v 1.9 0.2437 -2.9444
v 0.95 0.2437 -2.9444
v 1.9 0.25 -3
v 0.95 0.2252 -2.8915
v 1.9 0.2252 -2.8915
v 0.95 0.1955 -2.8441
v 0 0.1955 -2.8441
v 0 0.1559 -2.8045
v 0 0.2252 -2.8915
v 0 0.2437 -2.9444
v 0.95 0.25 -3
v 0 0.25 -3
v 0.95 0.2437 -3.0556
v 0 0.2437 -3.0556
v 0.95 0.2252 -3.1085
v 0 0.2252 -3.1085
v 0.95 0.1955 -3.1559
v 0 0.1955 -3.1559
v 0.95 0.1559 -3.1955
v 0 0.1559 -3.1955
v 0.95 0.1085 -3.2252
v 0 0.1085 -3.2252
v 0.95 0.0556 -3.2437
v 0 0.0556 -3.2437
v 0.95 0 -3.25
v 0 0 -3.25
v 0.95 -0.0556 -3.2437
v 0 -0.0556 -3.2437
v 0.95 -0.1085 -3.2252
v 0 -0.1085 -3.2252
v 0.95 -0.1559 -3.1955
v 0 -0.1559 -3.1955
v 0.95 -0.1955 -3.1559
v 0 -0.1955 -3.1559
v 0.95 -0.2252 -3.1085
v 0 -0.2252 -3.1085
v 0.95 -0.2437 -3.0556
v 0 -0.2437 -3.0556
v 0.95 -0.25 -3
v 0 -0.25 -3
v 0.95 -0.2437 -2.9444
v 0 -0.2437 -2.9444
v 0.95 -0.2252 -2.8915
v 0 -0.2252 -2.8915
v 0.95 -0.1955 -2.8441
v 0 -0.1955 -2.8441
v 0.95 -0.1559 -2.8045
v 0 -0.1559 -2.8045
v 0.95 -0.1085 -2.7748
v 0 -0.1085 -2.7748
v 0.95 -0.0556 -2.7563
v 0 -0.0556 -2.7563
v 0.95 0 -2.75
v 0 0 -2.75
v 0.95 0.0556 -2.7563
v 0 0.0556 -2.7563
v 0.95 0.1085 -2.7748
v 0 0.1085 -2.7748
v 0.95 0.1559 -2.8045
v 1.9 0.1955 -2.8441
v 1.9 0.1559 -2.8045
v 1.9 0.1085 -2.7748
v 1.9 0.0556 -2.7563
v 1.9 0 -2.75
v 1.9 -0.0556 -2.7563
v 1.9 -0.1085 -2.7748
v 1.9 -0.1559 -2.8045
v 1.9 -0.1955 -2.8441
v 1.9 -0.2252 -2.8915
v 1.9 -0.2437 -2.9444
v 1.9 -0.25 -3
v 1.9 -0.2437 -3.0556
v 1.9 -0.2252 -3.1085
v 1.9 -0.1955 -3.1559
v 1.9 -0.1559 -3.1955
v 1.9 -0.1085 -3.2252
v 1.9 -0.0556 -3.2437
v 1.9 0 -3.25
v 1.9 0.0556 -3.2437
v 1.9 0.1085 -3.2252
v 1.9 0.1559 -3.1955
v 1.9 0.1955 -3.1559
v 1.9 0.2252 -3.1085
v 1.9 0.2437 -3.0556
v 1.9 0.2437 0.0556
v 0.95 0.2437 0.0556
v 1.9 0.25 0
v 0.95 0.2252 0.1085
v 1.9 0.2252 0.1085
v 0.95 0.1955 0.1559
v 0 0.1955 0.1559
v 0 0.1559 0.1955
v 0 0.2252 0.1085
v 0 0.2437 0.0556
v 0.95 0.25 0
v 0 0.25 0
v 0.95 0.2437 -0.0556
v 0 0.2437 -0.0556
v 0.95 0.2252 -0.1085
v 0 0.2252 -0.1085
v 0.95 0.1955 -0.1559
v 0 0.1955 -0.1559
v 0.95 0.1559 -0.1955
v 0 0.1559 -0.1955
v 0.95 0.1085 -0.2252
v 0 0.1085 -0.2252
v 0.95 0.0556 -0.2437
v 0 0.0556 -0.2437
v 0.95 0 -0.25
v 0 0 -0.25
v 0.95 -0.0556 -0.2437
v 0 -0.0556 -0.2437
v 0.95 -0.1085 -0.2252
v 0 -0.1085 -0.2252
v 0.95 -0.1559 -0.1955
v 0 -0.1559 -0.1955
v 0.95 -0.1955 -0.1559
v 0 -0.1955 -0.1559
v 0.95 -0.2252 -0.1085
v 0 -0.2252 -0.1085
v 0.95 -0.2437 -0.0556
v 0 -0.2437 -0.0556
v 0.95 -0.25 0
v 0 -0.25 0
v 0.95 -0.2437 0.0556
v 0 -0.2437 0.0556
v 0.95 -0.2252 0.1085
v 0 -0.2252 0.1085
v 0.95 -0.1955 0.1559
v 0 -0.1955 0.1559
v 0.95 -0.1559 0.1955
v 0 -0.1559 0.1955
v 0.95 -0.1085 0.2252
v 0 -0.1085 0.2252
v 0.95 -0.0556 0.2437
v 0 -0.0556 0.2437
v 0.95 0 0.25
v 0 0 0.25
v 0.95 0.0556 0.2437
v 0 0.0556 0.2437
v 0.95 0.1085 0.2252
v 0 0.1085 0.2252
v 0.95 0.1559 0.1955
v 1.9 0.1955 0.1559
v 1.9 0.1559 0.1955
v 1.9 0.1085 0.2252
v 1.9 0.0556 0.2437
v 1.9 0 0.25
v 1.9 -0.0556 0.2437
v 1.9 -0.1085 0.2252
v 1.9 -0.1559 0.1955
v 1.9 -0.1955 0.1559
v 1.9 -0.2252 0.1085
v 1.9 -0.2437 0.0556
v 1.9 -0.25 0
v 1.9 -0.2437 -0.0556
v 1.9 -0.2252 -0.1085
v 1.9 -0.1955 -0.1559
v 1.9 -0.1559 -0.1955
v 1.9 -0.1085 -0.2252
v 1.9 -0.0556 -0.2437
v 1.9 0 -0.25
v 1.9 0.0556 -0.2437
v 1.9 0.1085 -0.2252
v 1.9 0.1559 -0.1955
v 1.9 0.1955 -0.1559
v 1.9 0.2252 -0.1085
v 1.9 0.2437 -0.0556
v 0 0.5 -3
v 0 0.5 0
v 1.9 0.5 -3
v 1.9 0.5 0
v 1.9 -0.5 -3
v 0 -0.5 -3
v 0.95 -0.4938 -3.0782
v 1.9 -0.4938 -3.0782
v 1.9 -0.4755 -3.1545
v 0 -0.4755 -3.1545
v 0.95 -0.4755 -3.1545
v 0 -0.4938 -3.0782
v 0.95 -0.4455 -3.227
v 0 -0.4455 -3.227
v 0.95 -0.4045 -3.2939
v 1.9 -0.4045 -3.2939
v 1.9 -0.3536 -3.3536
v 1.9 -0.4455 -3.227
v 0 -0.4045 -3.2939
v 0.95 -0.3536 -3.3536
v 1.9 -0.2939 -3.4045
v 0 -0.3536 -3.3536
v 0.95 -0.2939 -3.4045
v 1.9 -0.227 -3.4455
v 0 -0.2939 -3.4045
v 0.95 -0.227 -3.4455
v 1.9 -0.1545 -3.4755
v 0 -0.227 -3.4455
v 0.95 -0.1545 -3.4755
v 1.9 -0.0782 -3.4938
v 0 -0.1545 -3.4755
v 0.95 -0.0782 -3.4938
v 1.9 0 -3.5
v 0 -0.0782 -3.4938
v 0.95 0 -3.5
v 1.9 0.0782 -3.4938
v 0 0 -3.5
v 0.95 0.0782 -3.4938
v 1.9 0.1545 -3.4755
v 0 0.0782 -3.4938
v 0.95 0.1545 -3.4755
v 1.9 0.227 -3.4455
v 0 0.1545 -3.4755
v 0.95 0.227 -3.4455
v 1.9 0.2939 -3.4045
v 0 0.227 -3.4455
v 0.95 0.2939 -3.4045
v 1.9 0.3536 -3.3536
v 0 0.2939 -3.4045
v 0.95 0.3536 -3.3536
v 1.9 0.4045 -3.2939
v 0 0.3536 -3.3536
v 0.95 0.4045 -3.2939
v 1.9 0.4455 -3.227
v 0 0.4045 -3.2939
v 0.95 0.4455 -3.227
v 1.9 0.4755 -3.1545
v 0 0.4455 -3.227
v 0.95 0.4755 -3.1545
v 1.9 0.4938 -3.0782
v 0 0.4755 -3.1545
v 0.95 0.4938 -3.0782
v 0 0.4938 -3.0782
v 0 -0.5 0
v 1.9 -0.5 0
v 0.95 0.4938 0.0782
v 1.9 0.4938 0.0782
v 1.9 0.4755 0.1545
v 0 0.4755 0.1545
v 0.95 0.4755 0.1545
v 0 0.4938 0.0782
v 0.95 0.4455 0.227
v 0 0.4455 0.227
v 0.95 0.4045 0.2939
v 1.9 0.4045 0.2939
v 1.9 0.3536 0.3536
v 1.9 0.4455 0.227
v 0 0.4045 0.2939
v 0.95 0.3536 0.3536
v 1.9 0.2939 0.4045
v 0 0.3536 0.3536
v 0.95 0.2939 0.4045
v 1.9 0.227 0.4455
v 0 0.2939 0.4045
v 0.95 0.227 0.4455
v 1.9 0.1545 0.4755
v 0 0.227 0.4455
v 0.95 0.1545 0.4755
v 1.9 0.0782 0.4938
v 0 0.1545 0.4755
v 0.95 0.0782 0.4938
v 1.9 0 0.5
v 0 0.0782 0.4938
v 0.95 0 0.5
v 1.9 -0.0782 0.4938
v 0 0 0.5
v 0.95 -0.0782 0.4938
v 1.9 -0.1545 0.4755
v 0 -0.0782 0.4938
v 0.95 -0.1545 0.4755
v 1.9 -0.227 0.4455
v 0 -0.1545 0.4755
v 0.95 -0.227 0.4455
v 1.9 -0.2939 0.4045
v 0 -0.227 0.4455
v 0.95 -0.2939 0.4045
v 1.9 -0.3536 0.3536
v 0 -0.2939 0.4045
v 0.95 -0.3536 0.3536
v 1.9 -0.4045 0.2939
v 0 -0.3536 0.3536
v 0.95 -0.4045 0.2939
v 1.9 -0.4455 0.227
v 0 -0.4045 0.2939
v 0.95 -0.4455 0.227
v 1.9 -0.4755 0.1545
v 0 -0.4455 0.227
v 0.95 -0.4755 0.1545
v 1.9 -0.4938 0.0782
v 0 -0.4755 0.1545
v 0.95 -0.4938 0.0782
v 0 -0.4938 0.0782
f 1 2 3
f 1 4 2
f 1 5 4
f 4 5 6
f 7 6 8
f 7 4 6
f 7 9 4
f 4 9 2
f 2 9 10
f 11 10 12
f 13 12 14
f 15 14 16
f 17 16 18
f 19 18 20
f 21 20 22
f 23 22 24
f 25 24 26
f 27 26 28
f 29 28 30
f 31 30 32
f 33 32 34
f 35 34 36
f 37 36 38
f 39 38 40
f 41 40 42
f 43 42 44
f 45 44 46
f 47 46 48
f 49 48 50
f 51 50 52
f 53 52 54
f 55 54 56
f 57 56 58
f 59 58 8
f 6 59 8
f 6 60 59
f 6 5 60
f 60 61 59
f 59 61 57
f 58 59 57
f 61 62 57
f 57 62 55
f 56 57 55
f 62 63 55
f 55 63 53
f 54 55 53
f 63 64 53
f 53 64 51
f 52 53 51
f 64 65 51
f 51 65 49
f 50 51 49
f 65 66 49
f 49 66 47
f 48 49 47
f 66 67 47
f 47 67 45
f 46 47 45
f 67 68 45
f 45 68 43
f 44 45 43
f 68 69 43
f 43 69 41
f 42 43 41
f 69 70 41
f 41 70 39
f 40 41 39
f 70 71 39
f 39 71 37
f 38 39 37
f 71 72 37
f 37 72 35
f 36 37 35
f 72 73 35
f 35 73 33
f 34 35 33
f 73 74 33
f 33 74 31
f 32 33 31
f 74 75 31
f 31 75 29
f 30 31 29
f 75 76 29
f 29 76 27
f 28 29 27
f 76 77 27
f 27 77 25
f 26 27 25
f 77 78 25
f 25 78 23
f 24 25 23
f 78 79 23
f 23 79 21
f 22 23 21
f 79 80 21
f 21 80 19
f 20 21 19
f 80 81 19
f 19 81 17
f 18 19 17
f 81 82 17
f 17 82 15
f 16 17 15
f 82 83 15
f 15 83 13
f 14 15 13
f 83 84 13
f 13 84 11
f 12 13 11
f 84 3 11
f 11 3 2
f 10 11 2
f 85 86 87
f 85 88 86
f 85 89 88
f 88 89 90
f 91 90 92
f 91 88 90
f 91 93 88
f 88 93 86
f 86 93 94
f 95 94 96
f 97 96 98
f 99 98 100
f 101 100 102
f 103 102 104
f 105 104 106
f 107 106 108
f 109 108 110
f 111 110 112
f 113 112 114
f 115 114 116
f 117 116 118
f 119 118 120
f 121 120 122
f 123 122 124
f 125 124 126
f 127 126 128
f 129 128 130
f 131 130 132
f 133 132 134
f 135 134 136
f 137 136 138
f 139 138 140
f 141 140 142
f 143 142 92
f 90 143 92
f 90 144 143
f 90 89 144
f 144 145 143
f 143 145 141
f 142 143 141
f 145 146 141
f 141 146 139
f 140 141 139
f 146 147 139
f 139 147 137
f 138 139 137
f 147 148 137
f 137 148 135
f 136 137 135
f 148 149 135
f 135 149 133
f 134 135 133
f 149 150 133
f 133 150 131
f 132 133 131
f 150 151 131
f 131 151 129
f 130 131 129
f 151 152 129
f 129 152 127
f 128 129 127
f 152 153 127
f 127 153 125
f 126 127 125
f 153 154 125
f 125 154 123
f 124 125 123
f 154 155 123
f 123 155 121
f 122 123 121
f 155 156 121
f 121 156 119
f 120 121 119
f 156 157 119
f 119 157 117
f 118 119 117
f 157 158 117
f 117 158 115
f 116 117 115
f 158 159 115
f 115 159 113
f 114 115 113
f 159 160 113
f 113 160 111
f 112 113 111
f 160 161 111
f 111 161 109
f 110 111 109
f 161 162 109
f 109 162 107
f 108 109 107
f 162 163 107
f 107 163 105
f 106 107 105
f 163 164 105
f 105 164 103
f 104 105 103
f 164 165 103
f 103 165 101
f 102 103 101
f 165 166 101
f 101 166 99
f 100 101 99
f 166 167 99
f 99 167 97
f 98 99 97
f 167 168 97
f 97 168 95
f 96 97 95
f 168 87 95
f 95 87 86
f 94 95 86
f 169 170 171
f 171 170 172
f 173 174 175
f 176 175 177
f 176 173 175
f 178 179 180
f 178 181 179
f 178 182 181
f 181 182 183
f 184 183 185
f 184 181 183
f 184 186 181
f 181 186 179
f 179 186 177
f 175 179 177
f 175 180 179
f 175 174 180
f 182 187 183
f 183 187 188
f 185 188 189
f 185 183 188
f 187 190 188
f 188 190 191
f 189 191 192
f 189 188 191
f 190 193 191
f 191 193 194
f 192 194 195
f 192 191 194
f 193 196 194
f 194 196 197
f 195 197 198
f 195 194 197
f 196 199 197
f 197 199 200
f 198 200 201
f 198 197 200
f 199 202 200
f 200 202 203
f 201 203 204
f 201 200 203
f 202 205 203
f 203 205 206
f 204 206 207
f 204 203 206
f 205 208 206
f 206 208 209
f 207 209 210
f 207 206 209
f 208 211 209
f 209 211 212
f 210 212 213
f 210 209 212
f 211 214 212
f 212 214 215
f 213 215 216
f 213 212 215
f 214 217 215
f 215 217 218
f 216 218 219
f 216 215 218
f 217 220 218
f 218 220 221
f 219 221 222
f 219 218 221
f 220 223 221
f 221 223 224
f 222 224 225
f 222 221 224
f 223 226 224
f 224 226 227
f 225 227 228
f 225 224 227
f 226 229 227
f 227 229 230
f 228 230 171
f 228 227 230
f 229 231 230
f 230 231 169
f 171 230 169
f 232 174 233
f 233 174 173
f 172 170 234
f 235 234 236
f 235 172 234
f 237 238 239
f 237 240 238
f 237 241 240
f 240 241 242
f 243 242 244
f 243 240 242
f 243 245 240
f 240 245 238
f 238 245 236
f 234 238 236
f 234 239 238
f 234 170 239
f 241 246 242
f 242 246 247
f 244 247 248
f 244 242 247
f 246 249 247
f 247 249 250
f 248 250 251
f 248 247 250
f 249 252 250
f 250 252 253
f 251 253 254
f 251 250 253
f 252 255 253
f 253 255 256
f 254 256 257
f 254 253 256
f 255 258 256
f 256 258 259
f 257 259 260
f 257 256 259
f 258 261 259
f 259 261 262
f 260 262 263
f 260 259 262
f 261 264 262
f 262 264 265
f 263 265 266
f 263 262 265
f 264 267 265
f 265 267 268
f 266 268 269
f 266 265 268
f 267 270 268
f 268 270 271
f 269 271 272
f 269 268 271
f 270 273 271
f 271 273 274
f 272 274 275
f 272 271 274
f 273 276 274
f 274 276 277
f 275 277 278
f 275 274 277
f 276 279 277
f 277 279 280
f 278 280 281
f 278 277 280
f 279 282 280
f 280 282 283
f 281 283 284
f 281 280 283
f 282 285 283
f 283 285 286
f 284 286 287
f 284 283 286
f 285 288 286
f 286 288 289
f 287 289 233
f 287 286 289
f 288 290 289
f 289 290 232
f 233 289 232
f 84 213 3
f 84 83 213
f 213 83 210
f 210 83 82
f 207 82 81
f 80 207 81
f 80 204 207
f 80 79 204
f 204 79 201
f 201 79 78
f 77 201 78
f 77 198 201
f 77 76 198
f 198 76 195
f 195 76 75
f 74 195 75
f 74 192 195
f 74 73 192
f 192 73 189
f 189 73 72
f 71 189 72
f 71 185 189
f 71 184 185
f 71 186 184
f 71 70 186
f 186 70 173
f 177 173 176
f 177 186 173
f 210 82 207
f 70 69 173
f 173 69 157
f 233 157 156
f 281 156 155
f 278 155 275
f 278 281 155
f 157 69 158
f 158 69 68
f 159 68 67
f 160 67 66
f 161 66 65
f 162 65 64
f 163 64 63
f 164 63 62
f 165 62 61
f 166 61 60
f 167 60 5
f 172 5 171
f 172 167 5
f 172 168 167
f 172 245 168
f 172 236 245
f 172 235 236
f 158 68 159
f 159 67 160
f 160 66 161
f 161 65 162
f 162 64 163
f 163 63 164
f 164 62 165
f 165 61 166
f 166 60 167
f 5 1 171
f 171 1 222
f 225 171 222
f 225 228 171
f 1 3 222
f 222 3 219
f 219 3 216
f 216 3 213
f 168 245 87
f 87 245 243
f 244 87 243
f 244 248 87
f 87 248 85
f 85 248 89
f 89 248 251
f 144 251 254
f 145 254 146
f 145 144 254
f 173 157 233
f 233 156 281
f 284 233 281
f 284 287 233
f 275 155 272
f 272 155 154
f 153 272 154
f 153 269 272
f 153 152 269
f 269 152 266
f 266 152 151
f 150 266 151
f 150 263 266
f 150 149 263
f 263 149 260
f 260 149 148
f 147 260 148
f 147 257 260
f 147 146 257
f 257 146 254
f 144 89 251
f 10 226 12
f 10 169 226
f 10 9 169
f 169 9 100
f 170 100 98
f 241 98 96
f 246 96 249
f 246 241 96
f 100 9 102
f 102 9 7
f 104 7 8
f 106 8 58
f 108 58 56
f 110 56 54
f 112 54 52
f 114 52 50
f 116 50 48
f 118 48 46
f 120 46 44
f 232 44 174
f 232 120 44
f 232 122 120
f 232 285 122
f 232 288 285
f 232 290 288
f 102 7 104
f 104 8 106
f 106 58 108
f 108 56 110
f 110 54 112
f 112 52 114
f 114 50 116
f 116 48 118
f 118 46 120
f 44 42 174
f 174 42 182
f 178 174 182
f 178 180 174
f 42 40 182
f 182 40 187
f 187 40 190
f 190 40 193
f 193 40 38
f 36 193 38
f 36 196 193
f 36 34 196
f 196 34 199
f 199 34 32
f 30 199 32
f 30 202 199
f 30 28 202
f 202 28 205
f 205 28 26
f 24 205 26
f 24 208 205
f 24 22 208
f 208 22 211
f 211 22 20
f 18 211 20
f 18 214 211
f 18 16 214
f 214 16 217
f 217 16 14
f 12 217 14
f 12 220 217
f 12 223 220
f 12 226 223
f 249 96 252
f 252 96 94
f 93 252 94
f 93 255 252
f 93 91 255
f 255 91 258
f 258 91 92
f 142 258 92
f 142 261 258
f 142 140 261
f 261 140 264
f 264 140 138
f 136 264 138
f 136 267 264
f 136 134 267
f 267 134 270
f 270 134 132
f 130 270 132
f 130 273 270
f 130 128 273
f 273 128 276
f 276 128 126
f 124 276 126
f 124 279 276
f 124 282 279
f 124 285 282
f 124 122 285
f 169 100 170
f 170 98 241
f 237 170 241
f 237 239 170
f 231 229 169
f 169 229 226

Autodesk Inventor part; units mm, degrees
ref_plane "YZ Plane" through (0, 0, 0) normal (1, 0, 0) x (0, 1, 0)
ref_plane "XZ Plane" through (0, 0, 0) normal (0, 1, 0) x (-1, 0, 0)
ref_plane "XY Plane" through (0, 0, 0) normal (0, 0, 1) x (1, 0, 0)
sketch "Sketch2" plane through (0, 0, 0) normal (1, 0, 0) x (0, 1, 0)
  arc A0 (0.5, 0) -> (-0.5, 0) centre (0, 0) ccw
  circle A1 centre (0, 0) radius 0.25
  circle A2 centre (0, -3) radius 0.25
  arc A3 (-0.5, -3) -> (0.5, -3) centre (0, -3) ccw
  line L0 (0.5, 0) -> (0.5, -3)
  line L1 (-0.5, 0) -> (-0.5, -3)
  dimension "d7" = 1
  dimension "d8" = 0.5
  dimension "d10" = 0.5
  dimension "d11" = 1
extrude "Extrusion2" add sketch "Sketch2" along normal blind 1.9
properties part number "Tank Tread link B"
